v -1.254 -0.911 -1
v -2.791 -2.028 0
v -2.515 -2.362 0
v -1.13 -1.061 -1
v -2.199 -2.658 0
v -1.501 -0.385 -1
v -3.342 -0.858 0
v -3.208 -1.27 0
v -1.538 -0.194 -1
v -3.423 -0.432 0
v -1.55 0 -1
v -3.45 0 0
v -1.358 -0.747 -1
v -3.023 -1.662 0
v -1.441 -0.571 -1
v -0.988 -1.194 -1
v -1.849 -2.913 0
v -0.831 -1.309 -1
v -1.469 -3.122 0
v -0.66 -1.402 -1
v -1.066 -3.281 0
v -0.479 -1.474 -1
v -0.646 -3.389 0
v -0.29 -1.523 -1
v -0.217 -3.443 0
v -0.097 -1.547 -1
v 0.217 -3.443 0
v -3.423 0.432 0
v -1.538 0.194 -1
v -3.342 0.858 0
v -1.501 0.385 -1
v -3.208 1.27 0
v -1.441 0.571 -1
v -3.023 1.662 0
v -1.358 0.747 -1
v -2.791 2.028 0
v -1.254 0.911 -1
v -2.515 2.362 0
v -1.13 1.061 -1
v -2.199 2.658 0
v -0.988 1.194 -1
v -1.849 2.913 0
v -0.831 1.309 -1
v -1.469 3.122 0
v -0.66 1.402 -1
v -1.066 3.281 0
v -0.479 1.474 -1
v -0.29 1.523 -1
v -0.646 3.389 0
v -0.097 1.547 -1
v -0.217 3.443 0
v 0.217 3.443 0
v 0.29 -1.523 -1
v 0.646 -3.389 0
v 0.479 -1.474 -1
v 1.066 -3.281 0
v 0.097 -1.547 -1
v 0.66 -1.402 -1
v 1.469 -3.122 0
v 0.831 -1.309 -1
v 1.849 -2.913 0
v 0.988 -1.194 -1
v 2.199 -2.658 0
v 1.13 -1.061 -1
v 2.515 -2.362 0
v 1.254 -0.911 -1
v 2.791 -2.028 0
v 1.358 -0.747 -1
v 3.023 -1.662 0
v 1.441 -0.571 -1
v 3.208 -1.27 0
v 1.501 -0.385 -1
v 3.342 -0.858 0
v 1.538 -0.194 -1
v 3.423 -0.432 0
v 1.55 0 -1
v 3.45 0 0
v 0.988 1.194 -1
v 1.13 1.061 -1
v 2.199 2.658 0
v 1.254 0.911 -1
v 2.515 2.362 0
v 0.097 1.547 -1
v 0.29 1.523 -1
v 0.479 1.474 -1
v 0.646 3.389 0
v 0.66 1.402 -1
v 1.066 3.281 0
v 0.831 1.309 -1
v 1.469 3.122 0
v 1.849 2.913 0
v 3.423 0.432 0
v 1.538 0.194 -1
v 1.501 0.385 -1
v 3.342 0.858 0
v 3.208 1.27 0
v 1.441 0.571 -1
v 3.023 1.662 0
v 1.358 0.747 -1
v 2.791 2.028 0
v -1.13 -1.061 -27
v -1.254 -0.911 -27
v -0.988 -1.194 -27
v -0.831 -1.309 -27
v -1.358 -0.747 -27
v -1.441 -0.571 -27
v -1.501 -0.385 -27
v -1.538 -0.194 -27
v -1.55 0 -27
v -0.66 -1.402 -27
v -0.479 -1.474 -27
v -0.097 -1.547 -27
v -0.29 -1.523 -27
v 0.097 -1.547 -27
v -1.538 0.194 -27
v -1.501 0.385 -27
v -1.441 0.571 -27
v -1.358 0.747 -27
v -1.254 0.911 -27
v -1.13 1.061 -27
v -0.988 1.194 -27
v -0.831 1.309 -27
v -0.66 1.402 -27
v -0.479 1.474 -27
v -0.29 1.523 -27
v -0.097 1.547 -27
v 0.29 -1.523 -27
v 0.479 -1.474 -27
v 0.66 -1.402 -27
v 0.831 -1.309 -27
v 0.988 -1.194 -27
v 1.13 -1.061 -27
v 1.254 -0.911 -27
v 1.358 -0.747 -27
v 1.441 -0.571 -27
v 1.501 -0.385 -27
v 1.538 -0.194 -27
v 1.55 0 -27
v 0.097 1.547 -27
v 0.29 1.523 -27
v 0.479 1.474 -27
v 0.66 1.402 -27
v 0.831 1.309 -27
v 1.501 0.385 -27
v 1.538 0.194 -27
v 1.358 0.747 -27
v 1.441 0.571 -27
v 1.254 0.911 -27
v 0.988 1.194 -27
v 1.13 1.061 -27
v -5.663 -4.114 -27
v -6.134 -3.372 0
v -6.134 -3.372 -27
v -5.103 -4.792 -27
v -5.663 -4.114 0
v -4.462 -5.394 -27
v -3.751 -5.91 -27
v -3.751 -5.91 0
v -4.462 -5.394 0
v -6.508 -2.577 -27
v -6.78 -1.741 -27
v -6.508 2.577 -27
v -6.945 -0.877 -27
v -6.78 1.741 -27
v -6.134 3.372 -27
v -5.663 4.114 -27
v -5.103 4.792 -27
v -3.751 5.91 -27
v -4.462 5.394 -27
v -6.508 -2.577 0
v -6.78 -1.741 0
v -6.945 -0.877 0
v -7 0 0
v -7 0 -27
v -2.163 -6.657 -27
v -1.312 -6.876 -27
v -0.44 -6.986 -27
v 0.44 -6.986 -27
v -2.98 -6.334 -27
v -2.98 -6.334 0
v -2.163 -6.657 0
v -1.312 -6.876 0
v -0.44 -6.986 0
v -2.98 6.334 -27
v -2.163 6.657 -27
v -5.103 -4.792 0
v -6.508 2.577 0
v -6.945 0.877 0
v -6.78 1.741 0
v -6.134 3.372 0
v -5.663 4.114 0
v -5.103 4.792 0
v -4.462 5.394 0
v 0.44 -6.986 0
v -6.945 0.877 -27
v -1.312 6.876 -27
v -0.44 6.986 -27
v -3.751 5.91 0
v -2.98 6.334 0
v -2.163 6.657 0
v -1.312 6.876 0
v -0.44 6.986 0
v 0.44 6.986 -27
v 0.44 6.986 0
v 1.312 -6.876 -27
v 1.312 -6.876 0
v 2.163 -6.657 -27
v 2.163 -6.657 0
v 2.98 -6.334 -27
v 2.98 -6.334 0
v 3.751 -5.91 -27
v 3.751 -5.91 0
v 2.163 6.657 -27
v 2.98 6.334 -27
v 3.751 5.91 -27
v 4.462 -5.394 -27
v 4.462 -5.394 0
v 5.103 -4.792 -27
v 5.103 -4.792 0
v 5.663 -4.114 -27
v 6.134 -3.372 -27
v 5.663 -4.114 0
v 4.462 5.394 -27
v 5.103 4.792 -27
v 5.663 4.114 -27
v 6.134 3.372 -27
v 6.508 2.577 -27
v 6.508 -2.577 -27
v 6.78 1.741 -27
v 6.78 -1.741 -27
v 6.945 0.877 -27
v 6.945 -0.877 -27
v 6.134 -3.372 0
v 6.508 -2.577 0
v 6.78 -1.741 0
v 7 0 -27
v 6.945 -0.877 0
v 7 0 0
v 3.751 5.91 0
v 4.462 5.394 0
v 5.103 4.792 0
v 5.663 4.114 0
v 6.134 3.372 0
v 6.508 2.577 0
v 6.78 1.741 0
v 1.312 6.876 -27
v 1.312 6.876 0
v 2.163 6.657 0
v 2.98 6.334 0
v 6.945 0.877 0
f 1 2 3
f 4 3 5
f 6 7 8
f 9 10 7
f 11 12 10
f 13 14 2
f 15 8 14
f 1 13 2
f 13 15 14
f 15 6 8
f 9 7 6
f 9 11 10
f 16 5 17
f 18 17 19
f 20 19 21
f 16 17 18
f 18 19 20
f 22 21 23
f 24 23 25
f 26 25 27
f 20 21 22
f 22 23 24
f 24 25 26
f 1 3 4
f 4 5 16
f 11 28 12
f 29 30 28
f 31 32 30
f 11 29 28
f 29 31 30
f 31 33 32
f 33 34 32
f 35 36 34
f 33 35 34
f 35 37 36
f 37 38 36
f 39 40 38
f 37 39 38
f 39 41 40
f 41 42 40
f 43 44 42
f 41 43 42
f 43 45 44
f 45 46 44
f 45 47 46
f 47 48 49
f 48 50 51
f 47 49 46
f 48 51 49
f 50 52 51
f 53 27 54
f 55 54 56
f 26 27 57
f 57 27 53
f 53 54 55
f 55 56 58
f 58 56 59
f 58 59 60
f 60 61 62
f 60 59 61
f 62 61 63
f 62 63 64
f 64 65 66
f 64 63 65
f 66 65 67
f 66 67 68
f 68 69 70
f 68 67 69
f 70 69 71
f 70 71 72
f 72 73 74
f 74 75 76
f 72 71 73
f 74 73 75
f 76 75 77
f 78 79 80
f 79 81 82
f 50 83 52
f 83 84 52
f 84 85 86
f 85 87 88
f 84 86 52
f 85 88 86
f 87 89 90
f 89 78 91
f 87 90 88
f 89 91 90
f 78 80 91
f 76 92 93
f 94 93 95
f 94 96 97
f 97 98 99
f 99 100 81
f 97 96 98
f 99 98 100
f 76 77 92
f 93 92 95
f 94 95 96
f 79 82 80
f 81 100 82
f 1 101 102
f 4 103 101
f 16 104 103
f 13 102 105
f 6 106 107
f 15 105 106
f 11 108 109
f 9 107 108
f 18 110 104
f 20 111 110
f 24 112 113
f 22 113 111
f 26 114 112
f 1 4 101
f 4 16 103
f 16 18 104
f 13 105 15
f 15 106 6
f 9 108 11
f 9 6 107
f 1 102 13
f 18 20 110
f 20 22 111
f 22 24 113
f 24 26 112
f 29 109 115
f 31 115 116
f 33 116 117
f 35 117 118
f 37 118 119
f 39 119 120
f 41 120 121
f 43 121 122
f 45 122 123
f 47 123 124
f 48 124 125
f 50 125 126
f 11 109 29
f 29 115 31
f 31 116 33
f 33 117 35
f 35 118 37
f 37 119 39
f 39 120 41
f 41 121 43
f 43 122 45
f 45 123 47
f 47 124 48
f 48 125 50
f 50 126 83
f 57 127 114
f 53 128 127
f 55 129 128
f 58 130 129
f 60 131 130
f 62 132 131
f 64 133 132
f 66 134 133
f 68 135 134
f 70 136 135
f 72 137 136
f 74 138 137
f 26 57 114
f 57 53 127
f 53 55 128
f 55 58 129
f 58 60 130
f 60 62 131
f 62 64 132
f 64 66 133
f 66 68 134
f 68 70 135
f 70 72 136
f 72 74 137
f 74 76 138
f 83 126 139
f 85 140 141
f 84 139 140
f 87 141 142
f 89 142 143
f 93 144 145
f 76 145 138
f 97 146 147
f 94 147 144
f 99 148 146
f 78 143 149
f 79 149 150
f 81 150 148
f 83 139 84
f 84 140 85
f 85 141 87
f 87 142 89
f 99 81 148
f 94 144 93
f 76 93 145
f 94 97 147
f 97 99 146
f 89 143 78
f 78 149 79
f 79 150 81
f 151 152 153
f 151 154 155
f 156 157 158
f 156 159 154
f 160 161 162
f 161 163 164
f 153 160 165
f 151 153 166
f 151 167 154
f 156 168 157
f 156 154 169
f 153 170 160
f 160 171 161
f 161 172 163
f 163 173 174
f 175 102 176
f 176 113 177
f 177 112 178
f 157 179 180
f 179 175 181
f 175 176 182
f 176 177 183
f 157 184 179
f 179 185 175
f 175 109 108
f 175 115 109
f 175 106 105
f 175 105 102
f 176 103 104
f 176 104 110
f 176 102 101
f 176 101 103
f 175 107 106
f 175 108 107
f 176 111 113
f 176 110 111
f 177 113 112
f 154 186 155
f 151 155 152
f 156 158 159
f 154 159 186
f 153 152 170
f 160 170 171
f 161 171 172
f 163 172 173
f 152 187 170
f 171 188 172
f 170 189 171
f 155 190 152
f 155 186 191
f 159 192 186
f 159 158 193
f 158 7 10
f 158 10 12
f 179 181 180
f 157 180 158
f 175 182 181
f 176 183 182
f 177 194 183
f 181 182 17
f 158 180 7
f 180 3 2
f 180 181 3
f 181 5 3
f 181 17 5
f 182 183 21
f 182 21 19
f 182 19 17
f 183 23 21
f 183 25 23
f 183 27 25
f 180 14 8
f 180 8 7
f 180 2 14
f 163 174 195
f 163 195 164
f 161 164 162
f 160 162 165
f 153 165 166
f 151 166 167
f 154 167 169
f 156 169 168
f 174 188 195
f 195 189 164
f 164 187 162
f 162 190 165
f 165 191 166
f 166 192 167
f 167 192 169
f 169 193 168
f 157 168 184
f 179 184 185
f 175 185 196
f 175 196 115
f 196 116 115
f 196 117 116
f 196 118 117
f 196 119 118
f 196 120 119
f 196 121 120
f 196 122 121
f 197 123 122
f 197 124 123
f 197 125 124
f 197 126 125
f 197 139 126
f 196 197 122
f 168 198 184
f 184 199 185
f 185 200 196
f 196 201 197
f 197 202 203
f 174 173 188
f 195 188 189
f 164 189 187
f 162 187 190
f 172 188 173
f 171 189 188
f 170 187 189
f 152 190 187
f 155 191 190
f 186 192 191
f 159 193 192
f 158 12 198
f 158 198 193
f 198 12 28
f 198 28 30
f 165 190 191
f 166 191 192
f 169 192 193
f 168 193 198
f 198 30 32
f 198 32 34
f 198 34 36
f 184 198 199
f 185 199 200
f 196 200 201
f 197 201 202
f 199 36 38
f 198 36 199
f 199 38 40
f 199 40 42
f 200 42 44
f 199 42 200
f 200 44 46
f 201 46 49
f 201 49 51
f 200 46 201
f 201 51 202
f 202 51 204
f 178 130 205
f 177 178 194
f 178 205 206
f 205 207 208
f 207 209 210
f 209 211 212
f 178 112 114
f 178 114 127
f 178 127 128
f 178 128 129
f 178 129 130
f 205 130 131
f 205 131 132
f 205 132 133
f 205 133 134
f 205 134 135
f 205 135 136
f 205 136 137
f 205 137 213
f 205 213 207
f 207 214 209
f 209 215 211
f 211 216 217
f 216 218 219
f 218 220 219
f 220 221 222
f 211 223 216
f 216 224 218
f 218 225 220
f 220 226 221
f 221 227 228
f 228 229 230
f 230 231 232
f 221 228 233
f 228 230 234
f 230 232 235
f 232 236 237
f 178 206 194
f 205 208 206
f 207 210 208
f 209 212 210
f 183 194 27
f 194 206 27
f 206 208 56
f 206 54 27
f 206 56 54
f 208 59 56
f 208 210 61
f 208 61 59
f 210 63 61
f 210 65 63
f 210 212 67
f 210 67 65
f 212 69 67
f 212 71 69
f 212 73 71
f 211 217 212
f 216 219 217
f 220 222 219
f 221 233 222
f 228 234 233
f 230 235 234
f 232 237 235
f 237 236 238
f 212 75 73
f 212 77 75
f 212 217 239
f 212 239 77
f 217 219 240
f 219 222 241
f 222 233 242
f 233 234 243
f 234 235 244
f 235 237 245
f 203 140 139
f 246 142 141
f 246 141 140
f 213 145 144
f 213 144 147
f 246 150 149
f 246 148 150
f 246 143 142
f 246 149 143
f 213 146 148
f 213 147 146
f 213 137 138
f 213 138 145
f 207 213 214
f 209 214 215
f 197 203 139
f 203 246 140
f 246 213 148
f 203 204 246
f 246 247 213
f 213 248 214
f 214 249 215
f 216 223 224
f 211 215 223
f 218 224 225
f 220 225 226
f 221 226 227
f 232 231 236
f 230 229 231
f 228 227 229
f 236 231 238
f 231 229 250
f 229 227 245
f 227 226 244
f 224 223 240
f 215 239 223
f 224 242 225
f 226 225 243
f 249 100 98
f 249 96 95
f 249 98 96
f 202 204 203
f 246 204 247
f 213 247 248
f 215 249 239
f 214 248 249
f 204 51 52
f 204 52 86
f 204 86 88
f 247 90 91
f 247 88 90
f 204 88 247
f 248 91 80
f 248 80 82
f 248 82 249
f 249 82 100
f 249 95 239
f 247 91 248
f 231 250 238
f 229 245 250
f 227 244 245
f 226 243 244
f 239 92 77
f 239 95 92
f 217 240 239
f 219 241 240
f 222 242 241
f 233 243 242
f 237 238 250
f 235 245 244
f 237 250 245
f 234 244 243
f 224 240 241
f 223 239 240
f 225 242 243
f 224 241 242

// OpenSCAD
$fn = 50;

difference() {
	union() {
		translate(v = [0, 0, -27.0]) {
			cylinder(h = 27, r = 7.0);
		}
	}
	union() {
		translate(v = [0, 0, 0]) {
			rotate(a = [0, 0, 0]) {
				difference() {
					union() {
						translate(v = [0, 0, -30.0]) {
							cylinder(h = 30, r = 1.25);
						}
						translate(v = [0, 0, -1.0]) {
							cylinder(h = 1.0, r1 = 1.55, r2 = 3.45);
						}
						translate(v = [0, 0, -30.0]) {
							cylinder(h = 30, r = 1.55);
						}
						translate(v = [0, 0, -30.0]) {
							cylinder(h = 30, r = 1.25);
						}
					}
					union();
				}
			}
		}
	}
}
